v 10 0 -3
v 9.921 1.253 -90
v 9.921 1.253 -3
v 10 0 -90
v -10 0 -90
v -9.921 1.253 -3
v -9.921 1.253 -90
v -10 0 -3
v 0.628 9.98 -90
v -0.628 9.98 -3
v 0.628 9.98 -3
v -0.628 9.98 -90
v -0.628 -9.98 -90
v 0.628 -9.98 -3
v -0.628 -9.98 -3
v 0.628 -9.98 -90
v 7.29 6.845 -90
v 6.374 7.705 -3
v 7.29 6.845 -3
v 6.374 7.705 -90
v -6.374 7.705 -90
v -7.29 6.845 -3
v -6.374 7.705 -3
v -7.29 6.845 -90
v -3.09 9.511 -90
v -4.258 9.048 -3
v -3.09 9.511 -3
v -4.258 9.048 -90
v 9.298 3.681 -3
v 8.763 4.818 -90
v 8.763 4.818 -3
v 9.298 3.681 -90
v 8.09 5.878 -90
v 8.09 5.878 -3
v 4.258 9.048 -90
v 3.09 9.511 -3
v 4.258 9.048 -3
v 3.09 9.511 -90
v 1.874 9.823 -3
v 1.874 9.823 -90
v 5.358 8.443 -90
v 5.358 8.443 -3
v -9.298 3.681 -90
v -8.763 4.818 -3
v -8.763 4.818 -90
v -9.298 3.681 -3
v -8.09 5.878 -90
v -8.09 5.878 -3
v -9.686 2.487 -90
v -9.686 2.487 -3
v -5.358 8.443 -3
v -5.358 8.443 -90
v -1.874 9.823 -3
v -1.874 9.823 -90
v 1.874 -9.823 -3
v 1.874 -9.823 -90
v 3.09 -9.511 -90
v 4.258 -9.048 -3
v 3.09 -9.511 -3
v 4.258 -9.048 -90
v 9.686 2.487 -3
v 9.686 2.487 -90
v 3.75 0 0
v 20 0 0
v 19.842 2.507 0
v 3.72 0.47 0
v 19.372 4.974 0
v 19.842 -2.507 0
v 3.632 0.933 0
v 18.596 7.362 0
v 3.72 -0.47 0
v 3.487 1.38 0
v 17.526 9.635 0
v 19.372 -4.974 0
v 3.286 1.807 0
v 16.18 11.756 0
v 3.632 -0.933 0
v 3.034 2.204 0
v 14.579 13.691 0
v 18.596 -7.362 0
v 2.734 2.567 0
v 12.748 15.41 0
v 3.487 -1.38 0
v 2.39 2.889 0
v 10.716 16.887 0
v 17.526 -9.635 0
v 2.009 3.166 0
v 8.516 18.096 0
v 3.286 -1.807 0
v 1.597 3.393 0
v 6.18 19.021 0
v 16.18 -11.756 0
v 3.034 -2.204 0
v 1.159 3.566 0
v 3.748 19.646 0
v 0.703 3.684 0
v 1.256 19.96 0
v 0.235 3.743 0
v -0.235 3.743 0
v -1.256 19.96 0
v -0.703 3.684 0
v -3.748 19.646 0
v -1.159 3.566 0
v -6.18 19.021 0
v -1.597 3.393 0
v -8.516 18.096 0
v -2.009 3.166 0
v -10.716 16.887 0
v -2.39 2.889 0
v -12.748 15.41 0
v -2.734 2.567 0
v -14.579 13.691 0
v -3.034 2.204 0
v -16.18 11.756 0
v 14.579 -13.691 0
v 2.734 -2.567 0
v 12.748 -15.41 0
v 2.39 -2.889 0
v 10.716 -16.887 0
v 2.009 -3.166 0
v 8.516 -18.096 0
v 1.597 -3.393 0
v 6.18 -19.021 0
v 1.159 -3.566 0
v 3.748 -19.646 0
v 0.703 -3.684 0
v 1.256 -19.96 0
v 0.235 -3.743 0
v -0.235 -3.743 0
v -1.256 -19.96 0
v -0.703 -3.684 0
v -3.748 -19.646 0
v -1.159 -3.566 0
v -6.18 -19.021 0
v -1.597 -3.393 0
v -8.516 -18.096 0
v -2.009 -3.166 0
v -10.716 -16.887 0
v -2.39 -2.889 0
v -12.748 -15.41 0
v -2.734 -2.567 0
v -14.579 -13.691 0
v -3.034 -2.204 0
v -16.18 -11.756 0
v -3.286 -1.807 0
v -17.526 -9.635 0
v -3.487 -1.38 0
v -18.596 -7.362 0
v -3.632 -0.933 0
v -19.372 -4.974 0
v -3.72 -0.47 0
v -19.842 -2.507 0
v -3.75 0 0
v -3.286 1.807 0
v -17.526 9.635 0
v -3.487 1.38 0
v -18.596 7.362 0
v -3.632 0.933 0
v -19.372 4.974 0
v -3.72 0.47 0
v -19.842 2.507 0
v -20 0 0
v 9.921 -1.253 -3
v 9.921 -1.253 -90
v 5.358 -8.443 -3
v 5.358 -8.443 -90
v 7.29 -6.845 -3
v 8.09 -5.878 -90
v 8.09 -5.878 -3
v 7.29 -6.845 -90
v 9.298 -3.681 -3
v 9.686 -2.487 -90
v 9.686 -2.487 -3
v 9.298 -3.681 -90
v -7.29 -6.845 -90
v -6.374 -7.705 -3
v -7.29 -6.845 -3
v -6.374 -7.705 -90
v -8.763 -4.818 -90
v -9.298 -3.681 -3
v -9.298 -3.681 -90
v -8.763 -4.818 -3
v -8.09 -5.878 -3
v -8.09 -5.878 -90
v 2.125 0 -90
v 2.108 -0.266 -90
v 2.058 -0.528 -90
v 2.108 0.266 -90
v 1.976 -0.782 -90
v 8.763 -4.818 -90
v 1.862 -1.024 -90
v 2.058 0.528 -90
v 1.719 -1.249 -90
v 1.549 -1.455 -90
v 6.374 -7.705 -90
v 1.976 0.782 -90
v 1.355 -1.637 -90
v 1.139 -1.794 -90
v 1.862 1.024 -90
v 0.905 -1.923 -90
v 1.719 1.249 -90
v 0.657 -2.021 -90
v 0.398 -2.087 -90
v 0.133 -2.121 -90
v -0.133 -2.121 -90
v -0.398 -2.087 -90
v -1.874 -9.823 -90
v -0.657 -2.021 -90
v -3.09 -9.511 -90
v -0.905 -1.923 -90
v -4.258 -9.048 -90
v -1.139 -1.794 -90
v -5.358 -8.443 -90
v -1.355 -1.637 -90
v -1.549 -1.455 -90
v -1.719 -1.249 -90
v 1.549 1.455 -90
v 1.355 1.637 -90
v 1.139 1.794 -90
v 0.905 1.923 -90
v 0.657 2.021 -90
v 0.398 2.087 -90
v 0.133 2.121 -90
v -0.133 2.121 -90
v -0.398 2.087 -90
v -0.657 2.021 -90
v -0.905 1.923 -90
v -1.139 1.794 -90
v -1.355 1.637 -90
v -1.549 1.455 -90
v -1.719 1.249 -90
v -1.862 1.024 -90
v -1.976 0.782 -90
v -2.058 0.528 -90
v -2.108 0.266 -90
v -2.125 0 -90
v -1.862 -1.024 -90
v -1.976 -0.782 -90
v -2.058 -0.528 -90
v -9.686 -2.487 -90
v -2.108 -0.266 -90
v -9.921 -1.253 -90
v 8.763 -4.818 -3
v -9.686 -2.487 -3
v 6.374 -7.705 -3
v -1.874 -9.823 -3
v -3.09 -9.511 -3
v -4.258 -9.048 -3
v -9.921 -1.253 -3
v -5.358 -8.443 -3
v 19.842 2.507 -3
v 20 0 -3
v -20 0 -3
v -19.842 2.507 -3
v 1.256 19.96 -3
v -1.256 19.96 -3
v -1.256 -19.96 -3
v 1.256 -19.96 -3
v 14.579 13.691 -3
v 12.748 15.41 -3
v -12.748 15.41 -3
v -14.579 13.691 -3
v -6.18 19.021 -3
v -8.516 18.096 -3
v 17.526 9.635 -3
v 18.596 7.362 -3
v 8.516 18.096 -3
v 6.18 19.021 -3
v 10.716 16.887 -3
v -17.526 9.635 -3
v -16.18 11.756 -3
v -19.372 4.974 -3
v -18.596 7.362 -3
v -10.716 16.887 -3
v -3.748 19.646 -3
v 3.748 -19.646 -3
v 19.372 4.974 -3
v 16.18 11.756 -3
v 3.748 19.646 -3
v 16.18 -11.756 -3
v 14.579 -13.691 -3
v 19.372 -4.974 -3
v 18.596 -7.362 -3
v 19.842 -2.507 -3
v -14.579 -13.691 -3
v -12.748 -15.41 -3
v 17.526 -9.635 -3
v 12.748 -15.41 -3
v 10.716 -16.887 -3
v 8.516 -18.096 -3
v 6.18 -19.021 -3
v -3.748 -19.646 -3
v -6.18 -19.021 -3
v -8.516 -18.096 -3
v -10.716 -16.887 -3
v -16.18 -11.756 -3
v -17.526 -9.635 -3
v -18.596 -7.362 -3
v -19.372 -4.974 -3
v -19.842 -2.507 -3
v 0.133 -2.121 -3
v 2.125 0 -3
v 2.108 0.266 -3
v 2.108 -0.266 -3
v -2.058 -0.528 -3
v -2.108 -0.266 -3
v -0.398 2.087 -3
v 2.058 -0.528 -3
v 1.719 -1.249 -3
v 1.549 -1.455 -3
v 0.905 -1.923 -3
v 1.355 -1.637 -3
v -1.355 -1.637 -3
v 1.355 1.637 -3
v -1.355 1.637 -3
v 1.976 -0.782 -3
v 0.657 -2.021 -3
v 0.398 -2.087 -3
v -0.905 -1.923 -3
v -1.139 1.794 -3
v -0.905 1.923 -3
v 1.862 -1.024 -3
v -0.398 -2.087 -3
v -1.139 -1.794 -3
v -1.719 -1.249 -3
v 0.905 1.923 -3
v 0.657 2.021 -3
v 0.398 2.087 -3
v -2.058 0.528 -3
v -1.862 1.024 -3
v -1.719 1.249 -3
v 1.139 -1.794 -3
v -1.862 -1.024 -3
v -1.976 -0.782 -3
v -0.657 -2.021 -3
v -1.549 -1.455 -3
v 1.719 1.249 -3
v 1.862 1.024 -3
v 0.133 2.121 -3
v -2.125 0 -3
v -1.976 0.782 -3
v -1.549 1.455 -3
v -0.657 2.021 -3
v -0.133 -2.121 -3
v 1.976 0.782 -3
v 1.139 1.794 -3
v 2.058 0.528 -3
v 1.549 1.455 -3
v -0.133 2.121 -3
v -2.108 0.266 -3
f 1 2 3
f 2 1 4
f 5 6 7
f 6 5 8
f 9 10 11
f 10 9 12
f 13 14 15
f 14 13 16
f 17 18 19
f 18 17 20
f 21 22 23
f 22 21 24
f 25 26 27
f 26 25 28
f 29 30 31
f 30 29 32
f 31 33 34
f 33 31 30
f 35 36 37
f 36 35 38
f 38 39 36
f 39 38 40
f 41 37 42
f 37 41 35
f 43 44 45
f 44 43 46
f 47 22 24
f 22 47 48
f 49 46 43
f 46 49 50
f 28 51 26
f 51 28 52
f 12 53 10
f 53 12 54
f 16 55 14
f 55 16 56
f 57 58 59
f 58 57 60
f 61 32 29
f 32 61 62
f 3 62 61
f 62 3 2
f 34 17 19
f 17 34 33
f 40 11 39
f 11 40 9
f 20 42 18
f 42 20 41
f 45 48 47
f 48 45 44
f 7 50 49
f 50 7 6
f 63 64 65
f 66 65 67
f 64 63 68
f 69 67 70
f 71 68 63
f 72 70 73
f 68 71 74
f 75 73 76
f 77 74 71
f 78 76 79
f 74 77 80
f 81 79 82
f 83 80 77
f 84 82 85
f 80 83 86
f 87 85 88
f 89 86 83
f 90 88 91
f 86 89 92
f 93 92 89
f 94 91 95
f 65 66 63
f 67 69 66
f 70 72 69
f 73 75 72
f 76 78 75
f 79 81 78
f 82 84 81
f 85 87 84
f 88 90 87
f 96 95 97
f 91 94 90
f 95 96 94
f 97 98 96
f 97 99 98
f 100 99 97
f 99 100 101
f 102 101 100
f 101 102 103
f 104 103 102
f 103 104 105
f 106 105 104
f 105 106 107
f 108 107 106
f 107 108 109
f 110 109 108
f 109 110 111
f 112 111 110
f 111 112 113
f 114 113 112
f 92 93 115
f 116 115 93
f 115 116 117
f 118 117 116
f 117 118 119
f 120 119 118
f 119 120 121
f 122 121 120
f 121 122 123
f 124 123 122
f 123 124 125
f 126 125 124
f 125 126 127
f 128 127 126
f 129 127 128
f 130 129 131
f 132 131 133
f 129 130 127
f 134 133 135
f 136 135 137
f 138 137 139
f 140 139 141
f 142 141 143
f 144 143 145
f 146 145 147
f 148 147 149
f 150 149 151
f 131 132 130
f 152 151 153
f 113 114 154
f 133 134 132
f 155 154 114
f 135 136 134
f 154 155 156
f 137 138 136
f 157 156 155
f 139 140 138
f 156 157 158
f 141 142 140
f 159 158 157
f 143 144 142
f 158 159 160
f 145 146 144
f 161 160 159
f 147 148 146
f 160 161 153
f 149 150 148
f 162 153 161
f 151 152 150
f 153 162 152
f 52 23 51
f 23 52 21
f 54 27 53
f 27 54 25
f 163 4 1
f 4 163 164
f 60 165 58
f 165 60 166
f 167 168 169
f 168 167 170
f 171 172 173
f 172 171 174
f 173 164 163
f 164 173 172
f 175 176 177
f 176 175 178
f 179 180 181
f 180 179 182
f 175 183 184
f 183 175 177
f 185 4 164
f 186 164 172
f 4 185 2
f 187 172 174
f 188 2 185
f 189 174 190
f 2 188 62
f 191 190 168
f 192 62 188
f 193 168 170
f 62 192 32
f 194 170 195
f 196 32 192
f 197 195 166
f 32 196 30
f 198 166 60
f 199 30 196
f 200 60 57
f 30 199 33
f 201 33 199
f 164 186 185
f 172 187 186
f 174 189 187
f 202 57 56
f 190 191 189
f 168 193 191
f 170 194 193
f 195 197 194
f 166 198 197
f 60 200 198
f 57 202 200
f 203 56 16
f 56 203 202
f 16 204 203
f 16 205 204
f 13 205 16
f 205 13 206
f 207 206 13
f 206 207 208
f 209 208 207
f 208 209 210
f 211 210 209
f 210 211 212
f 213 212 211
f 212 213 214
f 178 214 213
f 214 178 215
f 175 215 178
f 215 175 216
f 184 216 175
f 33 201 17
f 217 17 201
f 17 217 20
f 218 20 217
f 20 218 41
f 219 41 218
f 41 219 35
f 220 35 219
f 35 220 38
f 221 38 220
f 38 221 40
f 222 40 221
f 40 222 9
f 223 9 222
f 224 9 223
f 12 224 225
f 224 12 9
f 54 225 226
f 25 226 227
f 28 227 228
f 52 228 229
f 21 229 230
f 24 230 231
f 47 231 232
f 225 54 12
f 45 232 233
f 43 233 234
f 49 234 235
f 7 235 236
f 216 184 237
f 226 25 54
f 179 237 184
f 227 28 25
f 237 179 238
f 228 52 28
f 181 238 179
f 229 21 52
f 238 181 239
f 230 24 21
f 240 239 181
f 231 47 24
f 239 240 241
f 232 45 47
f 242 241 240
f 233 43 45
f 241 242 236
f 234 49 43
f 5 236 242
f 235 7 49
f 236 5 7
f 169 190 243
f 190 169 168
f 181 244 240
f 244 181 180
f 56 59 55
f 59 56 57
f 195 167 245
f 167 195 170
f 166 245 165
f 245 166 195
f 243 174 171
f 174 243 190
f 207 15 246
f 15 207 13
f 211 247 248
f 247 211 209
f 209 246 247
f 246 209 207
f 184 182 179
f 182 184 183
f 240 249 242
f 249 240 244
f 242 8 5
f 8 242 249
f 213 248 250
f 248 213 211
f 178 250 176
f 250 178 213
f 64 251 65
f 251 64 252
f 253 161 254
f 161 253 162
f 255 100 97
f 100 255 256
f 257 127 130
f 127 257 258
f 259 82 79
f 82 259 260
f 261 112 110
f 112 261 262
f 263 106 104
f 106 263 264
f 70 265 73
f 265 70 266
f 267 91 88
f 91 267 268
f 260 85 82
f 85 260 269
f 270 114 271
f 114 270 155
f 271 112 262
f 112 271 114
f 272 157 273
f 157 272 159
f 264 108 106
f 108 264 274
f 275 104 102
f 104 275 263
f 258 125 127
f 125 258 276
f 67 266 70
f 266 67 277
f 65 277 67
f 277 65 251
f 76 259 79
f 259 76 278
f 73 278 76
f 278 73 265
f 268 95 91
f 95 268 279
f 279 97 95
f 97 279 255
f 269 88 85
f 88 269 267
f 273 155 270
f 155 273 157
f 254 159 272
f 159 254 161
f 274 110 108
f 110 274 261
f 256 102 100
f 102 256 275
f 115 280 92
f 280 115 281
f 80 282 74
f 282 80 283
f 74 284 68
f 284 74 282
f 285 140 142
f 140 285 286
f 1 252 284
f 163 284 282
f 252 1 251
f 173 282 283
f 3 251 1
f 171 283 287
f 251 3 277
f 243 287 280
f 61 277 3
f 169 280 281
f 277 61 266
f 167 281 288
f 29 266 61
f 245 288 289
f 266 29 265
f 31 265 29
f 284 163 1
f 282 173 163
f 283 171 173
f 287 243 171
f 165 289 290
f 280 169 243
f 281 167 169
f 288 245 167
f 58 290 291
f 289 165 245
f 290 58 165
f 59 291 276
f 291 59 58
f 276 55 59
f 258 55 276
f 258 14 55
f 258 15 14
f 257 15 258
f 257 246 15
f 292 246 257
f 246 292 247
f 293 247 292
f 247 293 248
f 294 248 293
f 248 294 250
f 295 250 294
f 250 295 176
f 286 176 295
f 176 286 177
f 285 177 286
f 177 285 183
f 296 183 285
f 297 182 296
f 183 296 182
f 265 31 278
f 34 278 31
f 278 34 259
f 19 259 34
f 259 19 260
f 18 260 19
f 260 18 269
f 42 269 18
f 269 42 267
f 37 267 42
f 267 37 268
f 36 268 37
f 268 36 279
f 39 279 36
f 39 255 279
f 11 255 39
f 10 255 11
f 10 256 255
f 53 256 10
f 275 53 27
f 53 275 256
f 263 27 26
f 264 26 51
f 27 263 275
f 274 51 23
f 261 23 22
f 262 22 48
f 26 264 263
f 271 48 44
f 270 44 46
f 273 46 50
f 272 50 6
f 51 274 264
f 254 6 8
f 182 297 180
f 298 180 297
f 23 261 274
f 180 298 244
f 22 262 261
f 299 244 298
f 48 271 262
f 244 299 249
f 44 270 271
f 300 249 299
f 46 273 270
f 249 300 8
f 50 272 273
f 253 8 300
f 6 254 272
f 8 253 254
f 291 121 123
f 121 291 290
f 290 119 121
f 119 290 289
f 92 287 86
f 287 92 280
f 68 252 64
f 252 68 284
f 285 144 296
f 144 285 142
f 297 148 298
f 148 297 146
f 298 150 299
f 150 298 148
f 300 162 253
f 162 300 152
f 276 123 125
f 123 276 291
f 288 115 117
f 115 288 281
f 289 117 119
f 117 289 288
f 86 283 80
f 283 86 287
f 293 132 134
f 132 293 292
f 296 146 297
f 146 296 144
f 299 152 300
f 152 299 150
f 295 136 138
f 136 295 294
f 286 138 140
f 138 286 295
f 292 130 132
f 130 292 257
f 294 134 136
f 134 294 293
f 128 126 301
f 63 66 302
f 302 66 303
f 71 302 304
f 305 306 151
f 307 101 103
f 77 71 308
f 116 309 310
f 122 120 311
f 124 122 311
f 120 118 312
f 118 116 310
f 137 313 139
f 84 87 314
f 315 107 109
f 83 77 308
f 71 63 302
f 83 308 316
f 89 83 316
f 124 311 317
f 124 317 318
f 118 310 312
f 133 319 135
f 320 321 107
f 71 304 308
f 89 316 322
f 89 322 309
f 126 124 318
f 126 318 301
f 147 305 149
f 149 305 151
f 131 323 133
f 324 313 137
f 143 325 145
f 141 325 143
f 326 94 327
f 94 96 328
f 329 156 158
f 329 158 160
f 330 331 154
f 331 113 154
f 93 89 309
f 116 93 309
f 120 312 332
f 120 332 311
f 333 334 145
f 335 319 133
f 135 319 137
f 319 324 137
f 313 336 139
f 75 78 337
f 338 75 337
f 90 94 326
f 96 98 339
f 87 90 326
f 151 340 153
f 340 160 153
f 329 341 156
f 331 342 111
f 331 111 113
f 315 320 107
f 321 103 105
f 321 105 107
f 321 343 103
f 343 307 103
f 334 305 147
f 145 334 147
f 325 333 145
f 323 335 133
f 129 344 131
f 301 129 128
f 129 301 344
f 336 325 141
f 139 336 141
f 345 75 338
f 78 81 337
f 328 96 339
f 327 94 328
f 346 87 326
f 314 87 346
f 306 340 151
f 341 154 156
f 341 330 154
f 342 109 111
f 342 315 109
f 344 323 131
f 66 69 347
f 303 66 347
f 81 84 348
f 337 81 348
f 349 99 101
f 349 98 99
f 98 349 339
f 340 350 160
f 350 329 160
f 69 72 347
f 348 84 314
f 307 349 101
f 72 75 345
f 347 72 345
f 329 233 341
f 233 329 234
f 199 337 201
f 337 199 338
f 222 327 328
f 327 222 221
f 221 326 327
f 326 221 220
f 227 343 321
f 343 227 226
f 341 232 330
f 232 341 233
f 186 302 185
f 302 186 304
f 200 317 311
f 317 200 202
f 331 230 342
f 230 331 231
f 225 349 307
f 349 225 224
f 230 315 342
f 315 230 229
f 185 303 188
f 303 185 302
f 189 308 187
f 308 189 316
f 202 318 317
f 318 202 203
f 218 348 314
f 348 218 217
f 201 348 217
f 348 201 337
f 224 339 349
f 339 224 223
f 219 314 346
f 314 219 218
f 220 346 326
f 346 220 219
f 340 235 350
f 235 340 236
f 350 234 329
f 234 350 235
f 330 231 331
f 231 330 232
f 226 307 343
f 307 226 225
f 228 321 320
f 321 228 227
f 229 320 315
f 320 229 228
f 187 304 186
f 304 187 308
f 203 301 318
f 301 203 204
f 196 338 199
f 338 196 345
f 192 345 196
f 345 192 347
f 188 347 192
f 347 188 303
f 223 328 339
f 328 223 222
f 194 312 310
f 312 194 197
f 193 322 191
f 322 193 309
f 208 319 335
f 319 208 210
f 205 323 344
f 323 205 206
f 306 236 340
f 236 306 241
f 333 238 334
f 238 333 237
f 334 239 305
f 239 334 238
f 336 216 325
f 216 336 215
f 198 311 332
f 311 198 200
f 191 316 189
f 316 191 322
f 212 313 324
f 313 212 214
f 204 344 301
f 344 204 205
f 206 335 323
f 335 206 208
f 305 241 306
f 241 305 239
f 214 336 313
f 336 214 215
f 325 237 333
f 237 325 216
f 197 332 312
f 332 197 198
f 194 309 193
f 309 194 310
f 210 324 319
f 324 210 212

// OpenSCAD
$fn = 50;


difference() {
	union() {
		translate(v = [0, 0, -90.0000000000]) {
			cylinder(h = 90, r = 10.0000000000);
		}
		translate(v = [0, 0, -3.0000000000]) {
			cylinder(h = 3, r = 20.0000000000);
		}
	}
	union() {
		translate(v = [0, 0, 0]) {
			rotate(a = [0, 0, 0]) {
				difference() {
					union() {
						#translate(v = [0, 0, -90.0000000000]) {
							cylinder(h = 90, r = 2.0000000000);
						}
						#translate(v = [0, 0, -3]) {
							cylinder(h = 3, r1 = 2.1250000000, r2 = 3.7500000000);
						}
						#translate(v = [0, 0, -90.0000000000]) {
							cylinder(h = 90, r = 2.1250000000);
						}
						#translate(v = [0, 0, -90.0000000000]) {
							cylinder(h = 90, r = 2.0000000000);
						}
					}
					union();
				}
			}
		}
	}
}
